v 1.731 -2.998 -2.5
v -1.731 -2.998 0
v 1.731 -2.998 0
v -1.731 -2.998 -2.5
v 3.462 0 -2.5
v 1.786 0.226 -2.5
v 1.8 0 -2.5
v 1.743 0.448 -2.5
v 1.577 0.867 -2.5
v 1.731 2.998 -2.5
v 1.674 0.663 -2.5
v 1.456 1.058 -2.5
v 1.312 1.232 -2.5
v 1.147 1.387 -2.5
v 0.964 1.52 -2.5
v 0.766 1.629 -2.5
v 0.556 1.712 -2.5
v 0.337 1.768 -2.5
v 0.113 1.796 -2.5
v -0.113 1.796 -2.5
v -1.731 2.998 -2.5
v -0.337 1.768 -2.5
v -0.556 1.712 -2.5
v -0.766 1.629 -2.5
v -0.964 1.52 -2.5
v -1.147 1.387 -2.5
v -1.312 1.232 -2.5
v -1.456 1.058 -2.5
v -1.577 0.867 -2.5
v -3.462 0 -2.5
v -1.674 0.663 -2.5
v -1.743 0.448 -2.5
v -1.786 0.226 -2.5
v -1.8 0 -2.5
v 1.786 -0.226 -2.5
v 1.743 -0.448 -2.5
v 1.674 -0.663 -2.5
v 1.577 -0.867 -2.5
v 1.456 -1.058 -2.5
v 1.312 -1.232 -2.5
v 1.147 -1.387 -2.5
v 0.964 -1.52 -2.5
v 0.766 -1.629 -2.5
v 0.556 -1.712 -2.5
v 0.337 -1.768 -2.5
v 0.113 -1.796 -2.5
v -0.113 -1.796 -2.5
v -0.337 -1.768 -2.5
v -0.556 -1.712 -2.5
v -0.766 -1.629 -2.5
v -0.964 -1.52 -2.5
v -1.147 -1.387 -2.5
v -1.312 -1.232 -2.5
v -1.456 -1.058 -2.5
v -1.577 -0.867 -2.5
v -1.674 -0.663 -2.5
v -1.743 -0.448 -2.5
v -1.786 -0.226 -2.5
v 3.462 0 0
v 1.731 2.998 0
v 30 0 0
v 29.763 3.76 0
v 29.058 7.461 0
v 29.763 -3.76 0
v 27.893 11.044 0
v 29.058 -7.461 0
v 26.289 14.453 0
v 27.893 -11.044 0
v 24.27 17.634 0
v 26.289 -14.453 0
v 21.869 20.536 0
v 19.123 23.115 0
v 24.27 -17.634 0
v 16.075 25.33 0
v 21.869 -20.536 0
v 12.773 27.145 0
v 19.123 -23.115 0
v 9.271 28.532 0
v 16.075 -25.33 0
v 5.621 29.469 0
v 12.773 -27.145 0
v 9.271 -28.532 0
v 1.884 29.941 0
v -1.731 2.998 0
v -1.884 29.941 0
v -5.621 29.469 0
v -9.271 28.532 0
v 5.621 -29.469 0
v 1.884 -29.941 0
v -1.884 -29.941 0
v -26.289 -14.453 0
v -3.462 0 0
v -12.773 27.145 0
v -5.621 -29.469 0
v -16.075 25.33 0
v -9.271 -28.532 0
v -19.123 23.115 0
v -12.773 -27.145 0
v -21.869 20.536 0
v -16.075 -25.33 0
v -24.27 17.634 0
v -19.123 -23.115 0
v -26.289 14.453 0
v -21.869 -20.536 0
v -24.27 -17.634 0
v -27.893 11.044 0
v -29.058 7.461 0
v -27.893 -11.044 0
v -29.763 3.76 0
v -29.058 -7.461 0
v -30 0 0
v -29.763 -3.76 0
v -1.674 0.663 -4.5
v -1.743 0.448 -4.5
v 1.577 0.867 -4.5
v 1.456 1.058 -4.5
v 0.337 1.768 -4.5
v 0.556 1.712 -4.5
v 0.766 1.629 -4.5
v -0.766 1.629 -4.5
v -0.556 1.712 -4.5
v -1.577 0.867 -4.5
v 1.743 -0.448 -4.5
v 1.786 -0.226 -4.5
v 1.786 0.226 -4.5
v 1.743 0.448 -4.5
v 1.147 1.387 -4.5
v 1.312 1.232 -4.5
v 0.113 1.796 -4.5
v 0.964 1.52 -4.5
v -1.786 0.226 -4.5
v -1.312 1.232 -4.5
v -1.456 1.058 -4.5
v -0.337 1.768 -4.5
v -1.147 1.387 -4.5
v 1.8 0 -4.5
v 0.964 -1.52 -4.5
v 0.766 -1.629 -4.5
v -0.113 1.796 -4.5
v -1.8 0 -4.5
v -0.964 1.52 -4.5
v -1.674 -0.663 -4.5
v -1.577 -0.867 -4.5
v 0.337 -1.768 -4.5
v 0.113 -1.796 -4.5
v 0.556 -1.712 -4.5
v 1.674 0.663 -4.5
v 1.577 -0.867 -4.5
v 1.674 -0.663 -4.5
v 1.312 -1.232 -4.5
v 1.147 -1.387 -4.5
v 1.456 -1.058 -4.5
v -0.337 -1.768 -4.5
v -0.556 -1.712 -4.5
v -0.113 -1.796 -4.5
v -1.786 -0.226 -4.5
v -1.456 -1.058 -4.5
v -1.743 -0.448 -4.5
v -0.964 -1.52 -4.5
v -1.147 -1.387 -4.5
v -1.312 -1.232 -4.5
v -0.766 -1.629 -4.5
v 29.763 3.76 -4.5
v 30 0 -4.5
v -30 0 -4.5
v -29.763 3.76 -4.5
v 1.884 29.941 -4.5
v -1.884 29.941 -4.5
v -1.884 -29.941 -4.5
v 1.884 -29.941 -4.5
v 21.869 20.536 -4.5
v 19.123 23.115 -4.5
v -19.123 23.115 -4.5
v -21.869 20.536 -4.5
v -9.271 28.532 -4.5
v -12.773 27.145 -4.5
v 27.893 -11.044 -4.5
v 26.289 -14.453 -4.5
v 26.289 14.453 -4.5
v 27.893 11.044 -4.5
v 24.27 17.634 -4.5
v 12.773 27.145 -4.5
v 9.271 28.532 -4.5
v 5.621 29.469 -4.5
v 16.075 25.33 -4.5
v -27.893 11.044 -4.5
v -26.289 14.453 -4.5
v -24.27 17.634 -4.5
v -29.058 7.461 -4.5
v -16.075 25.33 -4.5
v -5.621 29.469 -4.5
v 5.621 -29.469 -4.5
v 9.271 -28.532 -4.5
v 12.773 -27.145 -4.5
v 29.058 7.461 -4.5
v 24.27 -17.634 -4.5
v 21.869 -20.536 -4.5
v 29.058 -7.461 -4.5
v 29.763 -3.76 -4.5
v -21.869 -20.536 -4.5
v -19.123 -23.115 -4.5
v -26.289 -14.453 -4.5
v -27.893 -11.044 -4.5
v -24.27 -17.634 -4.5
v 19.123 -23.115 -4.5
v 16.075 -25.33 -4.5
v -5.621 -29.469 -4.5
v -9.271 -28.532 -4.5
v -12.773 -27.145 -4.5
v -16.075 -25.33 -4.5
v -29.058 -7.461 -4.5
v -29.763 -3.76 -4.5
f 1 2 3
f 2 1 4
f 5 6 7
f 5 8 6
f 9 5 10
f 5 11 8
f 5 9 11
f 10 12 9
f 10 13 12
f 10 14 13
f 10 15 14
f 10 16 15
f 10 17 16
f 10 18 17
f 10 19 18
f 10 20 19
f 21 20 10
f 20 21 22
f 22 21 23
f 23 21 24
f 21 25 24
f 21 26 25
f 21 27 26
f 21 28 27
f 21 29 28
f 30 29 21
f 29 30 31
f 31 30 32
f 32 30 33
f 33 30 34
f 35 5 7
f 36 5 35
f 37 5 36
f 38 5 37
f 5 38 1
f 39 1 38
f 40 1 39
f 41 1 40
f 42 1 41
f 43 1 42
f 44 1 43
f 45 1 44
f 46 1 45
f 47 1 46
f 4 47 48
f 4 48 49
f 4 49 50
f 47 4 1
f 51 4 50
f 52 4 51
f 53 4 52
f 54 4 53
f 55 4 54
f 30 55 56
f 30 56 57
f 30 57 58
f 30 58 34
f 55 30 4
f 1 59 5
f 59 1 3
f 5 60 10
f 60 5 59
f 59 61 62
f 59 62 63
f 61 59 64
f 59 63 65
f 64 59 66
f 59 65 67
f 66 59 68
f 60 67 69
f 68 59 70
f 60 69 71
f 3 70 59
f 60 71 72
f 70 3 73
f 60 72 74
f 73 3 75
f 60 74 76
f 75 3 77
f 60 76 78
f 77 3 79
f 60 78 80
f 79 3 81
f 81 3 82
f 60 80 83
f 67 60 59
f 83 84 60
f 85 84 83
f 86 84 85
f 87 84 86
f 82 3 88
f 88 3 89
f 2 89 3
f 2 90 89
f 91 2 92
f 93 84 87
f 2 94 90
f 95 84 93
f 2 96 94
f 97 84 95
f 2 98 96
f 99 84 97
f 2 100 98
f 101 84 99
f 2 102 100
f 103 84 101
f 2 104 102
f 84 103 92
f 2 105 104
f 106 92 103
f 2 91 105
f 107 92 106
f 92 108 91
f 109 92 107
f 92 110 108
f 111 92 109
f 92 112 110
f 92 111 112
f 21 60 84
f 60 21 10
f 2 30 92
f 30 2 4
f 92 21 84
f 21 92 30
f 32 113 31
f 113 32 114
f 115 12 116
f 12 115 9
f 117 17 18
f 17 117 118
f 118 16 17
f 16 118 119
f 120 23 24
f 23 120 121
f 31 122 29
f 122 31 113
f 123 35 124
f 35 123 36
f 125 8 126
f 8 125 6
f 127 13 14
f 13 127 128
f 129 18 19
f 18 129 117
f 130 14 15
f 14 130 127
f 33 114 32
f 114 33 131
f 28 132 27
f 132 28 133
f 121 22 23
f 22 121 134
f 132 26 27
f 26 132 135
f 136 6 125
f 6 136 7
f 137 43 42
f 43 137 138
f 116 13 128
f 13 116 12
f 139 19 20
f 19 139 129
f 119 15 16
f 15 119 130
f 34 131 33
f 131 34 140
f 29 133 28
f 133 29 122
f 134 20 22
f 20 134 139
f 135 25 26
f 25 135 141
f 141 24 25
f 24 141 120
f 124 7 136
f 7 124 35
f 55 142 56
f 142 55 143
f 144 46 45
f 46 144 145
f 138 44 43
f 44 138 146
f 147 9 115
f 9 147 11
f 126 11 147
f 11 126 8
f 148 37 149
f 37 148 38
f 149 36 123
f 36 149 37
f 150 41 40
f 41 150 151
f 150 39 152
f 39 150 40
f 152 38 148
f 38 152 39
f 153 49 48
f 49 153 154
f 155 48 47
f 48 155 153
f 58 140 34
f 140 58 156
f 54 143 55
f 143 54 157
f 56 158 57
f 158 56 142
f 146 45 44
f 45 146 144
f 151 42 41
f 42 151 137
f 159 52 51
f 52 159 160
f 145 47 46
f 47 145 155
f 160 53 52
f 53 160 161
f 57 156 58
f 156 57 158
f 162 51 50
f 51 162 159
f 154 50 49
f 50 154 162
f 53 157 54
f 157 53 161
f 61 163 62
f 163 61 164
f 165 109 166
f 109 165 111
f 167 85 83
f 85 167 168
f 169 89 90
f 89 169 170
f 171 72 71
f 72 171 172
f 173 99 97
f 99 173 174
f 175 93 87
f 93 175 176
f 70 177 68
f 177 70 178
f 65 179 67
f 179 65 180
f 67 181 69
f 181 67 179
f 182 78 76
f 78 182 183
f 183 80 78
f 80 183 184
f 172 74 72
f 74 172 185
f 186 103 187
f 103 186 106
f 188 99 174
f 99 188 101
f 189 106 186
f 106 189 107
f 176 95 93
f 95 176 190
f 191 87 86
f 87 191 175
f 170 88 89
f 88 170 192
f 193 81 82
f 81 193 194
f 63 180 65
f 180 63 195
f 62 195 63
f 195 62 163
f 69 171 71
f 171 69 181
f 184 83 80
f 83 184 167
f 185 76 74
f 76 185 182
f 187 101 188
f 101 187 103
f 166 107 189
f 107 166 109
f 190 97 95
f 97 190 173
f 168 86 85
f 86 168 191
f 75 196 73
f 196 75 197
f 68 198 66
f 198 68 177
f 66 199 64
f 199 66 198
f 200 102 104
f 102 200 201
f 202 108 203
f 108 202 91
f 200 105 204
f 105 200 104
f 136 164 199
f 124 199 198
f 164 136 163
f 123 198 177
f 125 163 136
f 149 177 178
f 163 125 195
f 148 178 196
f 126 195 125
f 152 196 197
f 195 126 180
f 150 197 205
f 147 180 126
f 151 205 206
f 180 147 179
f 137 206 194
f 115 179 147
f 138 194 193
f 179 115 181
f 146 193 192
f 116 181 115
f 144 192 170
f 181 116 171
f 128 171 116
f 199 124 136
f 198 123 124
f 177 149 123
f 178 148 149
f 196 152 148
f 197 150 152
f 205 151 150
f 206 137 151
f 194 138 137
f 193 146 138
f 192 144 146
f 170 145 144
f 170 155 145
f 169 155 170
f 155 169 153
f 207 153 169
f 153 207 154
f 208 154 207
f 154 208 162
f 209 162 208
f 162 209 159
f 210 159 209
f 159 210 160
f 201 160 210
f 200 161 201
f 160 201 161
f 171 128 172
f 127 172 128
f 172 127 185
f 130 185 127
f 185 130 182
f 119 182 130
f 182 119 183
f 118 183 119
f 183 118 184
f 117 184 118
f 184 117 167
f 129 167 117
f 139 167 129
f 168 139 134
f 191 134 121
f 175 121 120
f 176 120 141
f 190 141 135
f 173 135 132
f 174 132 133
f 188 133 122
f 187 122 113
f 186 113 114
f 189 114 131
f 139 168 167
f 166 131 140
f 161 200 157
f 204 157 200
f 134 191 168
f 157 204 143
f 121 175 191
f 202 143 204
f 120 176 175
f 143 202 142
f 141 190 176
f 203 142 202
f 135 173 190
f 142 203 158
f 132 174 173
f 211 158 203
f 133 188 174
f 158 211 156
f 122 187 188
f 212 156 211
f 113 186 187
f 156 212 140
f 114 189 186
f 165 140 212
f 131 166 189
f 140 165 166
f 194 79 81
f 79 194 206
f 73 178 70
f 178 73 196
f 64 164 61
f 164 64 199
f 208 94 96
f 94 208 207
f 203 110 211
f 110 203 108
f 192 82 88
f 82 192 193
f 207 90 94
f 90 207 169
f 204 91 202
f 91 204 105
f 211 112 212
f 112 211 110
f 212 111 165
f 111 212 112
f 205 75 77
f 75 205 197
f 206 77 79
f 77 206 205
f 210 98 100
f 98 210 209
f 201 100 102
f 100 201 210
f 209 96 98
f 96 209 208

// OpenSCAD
$fn = 50;


difference() {
	union() {
		translate(v = [0, 0, -4.5000000000]) {
			cylinder(h = 4.5000000000, r = 30.0000000000);
		}
	}
	union() {
		translate(v = [0, 0, 0]) {
			rotate(a = [0, 0, 0]) {
				difference() {
					union() {
						translate(v = [0, 0, -2.5000000000]) {
							#linear_extrude(height = 2.5000000000) {
								polygon(points = [[3.4620000000, 0.0000000000], [1.7310000000, 2.9981799479], [-1.7310000000, 2.9981799479], [-3.4620000000, 0.0000000000], [-1.7310000000, -2.9981799479], [1.7310000000, -2.9981799479]]);
							}
						}
					}
					union();
				}
			}
		}
		#translate(v = [0, 0, -100.0000000000]) {
			cylinder(h = 200, r = 1.8000000000);
		}
	}
}
